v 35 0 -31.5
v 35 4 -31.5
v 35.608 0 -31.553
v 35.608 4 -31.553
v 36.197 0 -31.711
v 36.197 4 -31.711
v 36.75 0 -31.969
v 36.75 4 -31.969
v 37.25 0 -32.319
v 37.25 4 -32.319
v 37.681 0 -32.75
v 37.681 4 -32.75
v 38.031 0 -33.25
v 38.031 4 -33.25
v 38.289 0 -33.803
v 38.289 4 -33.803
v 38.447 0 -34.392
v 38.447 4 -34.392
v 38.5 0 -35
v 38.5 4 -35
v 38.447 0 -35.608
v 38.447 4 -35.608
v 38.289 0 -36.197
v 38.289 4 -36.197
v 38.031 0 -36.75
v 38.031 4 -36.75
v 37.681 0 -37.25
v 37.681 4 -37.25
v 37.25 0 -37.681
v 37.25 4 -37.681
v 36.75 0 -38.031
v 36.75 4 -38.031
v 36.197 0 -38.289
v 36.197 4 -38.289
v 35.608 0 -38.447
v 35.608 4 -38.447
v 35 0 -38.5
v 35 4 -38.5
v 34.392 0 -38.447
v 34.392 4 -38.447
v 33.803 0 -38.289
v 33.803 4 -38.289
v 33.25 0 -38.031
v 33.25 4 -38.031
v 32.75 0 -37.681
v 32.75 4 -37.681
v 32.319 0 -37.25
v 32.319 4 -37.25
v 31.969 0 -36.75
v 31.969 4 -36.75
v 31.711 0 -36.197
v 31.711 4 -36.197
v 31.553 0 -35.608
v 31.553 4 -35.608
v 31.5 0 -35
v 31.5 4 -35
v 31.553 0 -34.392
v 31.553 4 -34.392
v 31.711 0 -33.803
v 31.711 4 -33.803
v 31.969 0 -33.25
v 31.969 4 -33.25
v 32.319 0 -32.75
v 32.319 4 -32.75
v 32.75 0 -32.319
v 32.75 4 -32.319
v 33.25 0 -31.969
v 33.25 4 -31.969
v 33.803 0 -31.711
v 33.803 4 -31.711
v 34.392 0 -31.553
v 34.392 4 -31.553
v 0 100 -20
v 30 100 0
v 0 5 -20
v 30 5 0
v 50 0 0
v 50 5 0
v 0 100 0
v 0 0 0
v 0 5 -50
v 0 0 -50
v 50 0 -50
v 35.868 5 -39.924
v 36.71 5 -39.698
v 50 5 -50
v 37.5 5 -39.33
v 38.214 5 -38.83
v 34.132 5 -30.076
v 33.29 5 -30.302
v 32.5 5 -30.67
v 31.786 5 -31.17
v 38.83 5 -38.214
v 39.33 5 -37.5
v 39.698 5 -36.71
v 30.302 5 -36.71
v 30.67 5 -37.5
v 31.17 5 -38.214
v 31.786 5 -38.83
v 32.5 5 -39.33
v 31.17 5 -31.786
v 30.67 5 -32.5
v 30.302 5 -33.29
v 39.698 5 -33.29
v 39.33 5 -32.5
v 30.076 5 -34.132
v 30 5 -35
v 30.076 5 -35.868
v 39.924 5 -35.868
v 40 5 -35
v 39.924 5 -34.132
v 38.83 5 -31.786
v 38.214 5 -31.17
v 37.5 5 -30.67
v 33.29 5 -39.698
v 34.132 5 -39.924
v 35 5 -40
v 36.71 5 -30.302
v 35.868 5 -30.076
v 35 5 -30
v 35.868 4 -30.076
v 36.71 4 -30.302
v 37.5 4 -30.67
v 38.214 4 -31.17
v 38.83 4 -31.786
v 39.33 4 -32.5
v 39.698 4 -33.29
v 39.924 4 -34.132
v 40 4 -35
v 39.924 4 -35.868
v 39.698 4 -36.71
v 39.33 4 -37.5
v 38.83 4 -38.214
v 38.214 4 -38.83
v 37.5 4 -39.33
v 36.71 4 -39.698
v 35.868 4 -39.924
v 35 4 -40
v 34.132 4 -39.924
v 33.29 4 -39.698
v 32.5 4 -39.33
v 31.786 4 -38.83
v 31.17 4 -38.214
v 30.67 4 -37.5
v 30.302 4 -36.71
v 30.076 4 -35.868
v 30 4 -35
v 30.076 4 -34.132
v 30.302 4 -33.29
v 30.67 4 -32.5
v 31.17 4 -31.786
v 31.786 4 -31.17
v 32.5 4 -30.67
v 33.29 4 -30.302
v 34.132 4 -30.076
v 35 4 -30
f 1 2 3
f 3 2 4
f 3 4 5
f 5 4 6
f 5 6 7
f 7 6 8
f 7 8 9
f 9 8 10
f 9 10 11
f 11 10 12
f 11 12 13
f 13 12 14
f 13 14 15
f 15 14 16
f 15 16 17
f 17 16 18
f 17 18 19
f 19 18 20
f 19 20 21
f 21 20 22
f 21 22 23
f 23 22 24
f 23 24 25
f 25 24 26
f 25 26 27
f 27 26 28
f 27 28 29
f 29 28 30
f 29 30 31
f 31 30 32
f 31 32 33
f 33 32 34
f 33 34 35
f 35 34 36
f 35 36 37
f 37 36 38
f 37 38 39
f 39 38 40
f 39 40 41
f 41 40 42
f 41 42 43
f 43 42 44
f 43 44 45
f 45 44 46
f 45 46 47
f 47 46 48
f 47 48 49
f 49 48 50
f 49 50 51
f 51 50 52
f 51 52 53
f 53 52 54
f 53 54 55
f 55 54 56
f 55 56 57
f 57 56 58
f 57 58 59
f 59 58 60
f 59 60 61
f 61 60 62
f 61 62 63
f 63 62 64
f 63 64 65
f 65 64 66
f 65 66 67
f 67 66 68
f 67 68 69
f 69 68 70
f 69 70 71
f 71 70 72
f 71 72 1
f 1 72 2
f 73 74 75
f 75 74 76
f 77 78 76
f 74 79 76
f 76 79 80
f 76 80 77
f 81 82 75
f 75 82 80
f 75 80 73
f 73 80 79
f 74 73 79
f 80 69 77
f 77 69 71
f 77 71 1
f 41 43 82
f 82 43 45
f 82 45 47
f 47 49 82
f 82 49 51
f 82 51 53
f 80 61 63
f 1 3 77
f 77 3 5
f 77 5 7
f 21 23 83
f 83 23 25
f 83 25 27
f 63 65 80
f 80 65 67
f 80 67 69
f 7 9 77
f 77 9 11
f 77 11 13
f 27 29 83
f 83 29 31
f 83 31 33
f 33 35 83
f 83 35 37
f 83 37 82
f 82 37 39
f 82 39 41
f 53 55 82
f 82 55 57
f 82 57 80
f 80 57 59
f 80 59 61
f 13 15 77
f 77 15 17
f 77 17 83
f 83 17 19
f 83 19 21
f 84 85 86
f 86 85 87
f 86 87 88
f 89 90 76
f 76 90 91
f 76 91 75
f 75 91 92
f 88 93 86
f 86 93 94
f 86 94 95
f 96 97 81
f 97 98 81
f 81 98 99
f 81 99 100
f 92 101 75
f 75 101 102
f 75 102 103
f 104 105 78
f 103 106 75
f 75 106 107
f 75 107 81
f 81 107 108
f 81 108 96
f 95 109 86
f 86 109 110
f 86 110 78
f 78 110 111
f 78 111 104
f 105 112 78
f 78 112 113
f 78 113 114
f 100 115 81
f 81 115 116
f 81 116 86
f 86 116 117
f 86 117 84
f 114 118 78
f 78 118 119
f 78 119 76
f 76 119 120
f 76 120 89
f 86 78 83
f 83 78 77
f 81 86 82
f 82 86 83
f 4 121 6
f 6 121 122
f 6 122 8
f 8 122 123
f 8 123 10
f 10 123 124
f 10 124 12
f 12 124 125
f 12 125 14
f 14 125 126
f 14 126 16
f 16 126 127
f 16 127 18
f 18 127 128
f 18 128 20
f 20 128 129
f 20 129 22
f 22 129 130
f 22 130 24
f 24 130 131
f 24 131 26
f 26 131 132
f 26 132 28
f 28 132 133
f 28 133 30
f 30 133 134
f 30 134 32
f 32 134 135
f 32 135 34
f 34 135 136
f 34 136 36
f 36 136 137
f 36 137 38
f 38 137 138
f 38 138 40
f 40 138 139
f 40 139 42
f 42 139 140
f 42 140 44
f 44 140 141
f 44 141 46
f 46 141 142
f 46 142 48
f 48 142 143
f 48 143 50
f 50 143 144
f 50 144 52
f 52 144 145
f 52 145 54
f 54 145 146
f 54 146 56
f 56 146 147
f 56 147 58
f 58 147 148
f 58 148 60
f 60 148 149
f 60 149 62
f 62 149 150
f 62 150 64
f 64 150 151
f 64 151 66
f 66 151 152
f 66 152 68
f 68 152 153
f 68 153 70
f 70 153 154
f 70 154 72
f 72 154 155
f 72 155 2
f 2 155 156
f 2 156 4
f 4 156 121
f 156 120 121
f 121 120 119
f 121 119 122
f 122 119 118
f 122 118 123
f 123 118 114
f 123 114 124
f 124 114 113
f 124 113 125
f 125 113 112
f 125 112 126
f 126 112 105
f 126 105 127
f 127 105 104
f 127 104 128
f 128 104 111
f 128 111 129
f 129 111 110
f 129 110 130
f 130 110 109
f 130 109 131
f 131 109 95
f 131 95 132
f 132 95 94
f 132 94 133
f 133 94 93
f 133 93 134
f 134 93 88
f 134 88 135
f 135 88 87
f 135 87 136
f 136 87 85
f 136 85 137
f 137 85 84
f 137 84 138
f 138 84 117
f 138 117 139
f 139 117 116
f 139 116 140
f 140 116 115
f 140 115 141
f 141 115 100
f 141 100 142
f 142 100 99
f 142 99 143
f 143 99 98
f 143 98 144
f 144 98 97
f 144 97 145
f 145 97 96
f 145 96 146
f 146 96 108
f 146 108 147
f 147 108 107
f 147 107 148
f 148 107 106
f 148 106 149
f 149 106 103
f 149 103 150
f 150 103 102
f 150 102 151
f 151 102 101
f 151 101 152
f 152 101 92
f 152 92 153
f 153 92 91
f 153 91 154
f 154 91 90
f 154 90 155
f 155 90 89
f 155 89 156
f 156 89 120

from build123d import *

# Parameters (mm, degrees)
BOSS_EXTRUDE1_DEPTH = 100
SKETCH2_W           = 50
SKETCH2_H           = 50
BOSS_EXTRUDE2_DEPTH = 5
SKETCH3_R           = 3.5
CUT_EXTRUDE1_DEPTH  = 119.427192823
SKETCH4_R           = 5
CUT_EXTRUDE2_DEPTH  = 1


with BuildPart() as part:
    # Sketch1 → Boss-Extrude1 (new body)
    with BuildSketch(Plane(origin=(0, 0, 0), x_dir=(1, 0, 0), z_dir=(0, 1, 0))):
        Polygon((0, 0), (0, 20), (30, 0), align=None)
    extrude(amount=BOSS_EXTRUDE1_DEPTH)

    # Sketch2 → Boss-Extrude2 (add)
    with BuildSketch(Plane.XZ):
        with Locations((25, -25)):
            Rectangle(SKETCH2_W, SKETCH2_H)
    extrude(amount=-BOSS_EXTRUDE2_DEPTH)

    # Sketch3 → Cut-Extrude1 (cut, through all)
    with BuildSketch(Plane(origin=(0, 5, 0), x_dir=(1, 0, 0), z_dir=(0, 1, 0))):
        with Locations(Location((35, 35, 0), (0, 0, 270))):
            Circle(SKETCH3_R)
    extrude(amount=-CUT_EXTRUDE1_DEPTH, mode=Mode.SUBTRACT)

    # Sketch4 → Cut-Extrude2 (cut)
    with BuildSketch(Plane(origin=(0, 5, 0), x_dir=(1, 0, 0), z_dir=(0, 1, 0))):
        with Locations(Location((35, 35, 0), (0, 0, 270))):
            Circle(SKETCH4_R)
    extrude(amount=-CUT_EXTRUDE2_DEPTH, mode=Mode.SUBTRACT)


solid = part.part
